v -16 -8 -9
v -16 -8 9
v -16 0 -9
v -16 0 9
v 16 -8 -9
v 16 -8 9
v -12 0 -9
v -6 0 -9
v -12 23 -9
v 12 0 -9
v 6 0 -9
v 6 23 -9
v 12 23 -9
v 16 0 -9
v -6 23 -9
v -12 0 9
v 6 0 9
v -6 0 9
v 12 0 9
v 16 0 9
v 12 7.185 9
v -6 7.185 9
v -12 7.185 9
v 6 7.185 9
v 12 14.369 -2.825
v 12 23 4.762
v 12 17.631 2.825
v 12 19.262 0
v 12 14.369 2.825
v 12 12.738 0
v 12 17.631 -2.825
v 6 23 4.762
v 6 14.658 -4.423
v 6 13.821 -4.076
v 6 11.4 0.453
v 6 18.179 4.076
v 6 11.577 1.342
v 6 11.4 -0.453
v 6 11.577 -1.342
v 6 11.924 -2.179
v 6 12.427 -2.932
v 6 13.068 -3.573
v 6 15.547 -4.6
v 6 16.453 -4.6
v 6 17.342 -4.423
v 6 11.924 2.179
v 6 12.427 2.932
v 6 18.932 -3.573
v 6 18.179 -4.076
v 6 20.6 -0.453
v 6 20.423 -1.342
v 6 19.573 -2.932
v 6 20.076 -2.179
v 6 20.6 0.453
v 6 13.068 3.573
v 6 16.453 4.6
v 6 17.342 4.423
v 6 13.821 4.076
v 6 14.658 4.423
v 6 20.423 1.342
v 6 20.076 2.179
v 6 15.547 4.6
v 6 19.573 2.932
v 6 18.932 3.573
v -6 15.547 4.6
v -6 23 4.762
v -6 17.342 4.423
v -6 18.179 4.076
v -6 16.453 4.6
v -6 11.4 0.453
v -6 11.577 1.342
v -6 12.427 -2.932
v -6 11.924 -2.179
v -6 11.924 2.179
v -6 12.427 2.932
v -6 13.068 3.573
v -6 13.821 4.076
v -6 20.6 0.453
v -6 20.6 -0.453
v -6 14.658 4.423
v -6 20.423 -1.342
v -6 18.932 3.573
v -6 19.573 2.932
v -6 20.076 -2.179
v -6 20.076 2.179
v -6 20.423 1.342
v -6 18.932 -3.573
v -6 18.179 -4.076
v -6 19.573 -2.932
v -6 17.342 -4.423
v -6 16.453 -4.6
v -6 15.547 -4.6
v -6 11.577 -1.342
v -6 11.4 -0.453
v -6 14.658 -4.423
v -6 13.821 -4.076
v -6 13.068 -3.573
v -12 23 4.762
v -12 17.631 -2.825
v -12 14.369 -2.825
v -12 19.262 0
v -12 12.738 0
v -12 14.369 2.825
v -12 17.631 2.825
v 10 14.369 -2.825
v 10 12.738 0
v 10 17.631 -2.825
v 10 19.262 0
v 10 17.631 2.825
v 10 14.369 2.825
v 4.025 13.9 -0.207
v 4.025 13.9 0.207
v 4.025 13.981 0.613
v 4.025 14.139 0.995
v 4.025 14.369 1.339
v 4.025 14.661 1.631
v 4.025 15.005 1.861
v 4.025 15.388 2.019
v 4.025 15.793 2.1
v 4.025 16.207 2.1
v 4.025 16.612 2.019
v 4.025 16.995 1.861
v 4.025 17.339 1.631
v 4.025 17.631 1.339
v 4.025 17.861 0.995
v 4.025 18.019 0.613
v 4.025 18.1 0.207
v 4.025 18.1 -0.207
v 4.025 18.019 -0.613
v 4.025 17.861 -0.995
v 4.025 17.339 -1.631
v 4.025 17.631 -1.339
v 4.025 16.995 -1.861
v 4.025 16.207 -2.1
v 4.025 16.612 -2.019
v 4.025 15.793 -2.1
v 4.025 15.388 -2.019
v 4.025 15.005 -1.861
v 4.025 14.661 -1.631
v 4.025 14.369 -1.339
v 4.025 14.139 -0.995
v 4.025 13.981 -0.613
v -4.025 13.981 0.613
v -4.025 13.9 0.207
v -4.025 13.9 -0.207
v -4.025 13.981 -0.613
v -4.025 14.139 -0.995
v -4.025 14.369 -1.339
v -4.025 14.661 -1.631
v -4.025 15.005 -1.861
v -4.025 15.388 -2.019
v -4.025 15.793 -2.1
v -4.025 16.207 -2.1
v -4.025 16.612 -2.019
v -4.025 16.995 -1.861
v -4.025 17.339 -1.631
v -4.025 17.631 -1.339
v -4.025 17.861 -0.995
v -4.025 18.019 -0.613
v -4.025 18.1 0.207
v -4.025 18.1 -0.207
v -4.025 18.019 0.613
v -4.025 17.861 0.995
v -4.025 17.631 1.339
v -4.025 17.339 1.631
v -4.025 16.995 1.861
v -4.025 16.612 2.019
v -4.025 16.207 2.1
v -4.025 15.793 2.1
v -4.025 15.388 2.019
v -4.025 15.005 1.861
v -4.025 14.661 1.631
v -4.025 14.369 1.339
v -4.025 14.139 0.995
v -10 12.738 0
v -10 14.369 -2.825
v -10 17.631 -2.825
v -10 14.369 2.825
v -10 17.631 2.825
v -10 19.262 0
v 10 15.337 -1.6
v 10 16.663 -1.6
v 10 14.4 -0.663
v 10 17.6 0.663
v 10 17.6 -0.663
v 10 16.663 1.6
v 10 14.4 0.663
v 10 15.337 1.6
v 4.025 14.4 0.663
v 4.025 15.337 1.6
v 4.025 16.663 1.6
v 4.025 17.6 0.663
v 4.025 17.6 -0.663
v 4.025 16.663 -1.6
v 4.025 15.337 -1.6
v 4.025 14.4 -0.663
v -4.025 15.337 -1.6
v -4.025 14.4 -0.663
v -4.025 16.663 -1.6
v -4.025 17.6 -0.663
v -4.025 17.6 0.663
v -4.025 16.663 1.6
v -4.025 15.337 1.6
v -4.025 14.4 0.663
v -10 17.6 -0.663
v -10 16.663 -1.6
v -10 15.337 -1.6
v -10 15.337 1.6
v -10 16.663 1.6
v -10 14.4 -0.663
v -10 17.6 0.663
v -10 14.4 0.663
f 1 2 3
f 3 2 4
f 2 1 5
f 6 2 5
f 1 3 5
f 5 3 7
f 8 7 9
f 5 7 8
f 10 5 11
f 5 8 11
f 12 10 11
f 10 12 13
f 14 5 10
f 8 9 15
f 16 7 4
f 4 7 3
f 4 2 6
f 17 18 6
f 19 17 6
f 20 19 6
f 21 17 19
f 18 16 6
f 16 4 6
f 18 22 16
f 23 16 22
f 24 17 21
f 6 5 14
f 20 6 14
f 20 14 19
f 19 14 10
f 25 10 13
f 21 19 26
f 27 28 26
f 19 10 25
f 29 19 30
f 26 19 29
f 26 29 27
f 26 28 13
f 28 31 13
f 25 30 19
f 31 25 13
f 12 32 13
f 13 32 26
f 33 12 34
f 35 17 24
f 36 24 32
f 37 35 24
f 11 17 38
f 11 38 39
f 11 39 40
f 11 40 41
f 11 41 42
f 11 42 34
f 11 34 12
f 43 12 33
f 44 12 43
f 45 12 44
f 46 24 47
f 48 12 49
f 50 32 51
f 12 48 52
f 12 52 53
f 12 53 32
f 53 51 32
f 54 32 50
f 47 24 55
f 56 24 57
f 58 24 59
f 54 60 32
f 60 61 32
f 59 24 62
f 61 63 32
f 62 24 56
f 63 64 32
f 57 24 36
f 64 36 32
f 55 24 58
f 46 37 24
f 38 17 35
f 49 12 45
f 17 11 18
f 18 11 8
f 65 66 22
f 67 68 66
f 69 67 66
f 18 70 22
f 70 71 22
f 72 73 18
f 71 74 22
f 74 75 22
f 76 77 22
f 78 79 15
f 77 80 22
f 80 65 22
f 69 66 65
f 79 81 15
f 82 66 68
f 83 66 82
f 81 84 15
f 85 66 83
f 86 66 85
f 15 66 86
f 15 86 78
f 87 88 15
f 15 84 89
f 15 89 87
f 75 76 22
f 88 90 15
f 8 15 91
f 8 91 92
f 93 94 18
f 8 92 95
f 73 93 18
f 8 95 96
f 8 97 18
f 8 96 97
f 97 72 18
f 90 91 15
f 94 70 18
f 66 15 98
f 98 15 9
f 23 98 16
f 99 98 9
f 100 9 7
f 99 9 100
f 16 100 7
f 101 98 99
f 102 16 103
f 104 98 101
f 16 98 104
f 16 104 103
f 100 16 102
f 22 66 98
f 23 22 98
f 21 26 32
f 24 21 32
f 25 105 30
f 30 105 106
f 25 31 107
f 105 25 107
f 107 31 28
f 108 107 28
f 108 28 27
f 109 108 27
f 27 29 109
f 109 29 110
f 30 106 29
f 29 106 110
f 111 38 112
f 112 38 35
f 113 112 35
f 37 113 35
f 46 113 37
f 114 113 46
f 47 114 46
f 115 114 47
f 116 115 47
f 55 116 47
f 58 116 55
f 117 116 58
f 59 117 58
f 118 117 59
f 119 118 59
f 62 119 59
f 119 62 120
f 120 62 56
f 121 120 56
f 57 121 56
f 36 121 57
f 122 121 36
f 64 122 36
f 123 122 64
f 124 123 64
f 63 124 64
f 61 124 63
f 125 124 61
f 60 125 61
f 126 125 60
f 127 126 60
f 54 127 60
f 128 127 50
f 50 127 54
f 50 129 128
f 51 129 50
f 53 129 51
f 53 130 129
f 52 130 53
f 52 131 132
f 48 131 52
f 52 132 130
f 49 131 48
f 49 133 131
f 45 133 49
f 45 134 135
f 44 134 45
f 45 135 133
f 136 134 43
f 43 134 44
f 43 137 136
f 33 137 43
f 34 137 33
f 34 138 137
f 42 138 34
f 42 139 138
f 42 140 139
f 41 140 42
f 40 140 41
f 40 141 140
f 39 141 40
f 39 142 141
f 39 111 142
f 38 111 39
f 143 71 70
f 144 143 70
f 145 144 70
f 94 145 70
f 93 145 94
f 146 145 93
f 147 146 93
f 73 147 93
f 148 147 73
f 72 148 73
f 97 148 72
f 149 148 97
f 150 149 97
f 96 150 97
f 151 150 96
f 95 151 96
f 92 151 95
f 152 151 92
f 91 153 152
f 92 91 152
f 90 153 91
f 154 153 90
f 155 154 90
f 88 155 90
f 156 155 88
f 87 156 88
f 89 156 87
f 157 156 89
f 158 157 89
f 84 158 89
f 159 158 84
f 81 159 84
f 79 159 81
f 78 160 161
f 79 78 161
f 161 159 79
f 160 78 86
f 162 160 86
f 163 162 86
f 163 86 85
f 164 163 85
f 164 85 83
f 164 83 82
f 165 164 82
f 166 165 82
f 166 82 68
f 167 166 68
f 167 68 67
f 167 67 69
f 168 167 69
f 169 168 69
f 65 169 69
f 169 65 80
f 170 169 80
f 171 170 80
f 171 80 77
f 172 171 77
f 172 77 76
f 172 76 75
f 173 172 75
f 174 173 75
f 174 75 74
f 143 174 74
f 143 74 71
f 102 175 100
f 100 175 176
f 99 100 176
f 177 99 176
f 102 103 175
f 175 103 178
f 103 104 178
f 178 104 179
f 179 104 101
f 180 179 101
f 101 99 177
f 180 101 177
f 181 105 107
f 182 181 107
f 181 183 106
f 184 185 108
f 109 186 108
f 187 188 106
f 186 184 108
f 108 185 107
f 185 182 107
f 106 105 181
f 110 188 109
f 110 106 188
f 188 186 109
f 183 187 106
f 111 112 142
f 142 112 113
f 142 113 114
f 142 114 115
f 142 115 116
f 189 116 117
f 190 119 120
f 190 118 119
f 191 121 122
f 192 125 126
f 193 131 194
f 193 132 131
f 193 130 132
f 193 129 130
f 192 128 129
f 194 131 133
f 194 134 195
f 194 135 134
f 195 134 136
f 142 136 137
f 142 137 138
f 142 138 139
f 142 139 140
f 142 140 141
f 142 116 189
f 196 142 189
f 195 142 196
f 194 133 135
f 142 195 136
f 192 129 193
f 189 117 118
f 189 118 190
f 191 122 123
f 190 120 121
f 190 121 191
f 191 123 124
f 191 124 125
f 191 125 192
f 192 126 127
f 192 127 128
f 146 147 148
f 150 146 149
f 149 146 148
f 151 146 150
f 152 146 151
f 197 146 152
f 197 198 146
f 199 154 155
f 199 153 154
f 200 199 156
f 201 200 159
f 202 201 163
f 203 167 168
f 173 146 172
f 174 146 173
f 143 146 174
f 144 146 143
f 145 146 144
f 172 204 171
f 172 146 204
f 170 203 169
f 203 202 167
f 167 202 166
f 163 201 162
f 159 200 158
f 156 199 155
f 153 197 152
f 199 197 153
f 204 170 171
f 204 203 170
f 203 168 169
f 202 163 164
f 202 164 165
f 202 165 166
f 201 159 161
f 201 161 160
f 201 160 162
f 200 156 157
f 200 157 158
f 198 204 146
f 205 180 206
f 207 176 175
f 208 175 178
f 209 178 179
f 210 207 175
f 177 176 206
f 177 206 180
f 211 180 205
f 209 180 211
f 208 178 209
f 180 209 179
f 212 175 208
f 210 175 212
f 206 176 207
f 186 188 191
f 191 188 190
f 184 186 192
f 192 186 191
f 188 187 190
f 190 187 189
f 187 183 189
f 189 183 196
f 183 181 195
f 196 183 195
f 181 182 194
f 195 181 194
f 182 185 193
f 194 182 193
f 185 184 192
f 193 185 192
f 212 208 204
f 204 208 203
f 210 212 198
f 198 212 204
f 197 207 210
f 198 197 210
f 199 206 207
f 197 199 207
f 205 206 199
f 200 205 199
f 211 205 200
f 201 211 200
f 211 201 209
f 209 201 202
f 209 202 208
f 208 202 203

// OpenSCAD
left = -1;
right = 1;
top = -1;
bottom = 1;

build_x = 180;
build_y = 180;
build_z = 180;

extrusion_height = 0.3;
extrusion_width = 0.5;
res = 24;

function accurate_diam(diam,sides) = 1 / cos(180/sides) / 2 * diam;

module hole(diam,len,sides=8) {
  cylinder(r=accurate_diam(diam,sides),h=len,center=true,$fn=sides);
}

wall_thickness   = 2;
nut_diam         = 5.65; // 5.5 + clearance
nut_height       = 2;

material_thickness = 6;

bearing_inner_diam = 3.2;
bearing_outer_diam = 10;
bearing_height     = 4;
idler_outer_diam   = 12;
idler_width        = 8;
belt_thickness     = 2;

bearing_dist_from_end      = material_thickness + idler_outer_diam/2 + belt_thickness + 2;

arm_spacing = idler_width;
arm_width   = 8;
arm_height  = 18;
arm_length  = bearing_dist_from_end + bearing_outer_diam/2 + wall_thickness;

module y_idler() {
  module body() {
    for(side=[0,1]) {
      mirror([side,0,0]) {
        translate([arm_spacing/2+arm_width/2,0,0]) {
          idler_arm();
        }
      }
    }

    translate([0,-arm_width/2,0]) {
      cube([arm_spacing + arm_width*2 + wall_thickness*4,arm_width,arm_height],center=true);
    }
  }

  module holes() {
    /*
    rotate([90,0,0]) {
      rotate([0,0,22.5]) {
        hole(bearing_inner_diam,arm_length,8);
      }

      rotate([0,0,0]) {
        hole(nut_diam,nut_height*3,6);
      }
    }
    */

    translate([0,material_thickness,0]) {
      rotate([-15,0,0]) {
        translate([0,0,arm_height]) {
          cube([arm_width*5,arm_length*3,arm_height],center=true);
        }
      }
    }
  }

  difference() {
    body();
    holes();
  }

  % translate([0,bearing_dist_from_end,0]) {
    rotate([0,90,0]) {
      cylinder(r=idler_outer_diam/2,h=idler_width,center=true);
    }
  }

  % translate([0,material_thickness/2,0]) {
    cube([arm_width*7,material_thickness,arm_height*1.5],center=true);
  }
}

module idler_arm() {
  bevel_height = 2;
  solid_arm_width = arm_width-bevel_height;

  module body() {
    translate([bevel_height/2,arm_length/2,0]) {
      cube([solid_arm_width,arm_length,arm_height],center=true);
    }

    translate([0,bearing_dist_from_end,0]) {
      hull() {
        rotate([0,90,0]) {
          rotate([0,0,22.5/4]) {
            hole(bearing_inner_diam+wall_thickness/2,arm_width-0.05,16*2);
            hole(bearing_inner_diam+wall_thickness+bevel_height*2,arm_width-bevel_height*2,16*2);
          }
        }
      }
    }
  }

  module holes() {
    translate([arm_width/2,bearing_dist_from_end,0]) {
      rotate([0,90,0]) {
        rotate([0,0,22.5]) {
          hole(bearing_inner_diam,arm_width*2,8);
        }
        rotate([0,0,90]) {
          hole(nut_diam,nut_height*2,6);
        }
      }
    }
  }

  difference() {
    body();
    holes();
  }
}

//idler_arm();

y_idler();
